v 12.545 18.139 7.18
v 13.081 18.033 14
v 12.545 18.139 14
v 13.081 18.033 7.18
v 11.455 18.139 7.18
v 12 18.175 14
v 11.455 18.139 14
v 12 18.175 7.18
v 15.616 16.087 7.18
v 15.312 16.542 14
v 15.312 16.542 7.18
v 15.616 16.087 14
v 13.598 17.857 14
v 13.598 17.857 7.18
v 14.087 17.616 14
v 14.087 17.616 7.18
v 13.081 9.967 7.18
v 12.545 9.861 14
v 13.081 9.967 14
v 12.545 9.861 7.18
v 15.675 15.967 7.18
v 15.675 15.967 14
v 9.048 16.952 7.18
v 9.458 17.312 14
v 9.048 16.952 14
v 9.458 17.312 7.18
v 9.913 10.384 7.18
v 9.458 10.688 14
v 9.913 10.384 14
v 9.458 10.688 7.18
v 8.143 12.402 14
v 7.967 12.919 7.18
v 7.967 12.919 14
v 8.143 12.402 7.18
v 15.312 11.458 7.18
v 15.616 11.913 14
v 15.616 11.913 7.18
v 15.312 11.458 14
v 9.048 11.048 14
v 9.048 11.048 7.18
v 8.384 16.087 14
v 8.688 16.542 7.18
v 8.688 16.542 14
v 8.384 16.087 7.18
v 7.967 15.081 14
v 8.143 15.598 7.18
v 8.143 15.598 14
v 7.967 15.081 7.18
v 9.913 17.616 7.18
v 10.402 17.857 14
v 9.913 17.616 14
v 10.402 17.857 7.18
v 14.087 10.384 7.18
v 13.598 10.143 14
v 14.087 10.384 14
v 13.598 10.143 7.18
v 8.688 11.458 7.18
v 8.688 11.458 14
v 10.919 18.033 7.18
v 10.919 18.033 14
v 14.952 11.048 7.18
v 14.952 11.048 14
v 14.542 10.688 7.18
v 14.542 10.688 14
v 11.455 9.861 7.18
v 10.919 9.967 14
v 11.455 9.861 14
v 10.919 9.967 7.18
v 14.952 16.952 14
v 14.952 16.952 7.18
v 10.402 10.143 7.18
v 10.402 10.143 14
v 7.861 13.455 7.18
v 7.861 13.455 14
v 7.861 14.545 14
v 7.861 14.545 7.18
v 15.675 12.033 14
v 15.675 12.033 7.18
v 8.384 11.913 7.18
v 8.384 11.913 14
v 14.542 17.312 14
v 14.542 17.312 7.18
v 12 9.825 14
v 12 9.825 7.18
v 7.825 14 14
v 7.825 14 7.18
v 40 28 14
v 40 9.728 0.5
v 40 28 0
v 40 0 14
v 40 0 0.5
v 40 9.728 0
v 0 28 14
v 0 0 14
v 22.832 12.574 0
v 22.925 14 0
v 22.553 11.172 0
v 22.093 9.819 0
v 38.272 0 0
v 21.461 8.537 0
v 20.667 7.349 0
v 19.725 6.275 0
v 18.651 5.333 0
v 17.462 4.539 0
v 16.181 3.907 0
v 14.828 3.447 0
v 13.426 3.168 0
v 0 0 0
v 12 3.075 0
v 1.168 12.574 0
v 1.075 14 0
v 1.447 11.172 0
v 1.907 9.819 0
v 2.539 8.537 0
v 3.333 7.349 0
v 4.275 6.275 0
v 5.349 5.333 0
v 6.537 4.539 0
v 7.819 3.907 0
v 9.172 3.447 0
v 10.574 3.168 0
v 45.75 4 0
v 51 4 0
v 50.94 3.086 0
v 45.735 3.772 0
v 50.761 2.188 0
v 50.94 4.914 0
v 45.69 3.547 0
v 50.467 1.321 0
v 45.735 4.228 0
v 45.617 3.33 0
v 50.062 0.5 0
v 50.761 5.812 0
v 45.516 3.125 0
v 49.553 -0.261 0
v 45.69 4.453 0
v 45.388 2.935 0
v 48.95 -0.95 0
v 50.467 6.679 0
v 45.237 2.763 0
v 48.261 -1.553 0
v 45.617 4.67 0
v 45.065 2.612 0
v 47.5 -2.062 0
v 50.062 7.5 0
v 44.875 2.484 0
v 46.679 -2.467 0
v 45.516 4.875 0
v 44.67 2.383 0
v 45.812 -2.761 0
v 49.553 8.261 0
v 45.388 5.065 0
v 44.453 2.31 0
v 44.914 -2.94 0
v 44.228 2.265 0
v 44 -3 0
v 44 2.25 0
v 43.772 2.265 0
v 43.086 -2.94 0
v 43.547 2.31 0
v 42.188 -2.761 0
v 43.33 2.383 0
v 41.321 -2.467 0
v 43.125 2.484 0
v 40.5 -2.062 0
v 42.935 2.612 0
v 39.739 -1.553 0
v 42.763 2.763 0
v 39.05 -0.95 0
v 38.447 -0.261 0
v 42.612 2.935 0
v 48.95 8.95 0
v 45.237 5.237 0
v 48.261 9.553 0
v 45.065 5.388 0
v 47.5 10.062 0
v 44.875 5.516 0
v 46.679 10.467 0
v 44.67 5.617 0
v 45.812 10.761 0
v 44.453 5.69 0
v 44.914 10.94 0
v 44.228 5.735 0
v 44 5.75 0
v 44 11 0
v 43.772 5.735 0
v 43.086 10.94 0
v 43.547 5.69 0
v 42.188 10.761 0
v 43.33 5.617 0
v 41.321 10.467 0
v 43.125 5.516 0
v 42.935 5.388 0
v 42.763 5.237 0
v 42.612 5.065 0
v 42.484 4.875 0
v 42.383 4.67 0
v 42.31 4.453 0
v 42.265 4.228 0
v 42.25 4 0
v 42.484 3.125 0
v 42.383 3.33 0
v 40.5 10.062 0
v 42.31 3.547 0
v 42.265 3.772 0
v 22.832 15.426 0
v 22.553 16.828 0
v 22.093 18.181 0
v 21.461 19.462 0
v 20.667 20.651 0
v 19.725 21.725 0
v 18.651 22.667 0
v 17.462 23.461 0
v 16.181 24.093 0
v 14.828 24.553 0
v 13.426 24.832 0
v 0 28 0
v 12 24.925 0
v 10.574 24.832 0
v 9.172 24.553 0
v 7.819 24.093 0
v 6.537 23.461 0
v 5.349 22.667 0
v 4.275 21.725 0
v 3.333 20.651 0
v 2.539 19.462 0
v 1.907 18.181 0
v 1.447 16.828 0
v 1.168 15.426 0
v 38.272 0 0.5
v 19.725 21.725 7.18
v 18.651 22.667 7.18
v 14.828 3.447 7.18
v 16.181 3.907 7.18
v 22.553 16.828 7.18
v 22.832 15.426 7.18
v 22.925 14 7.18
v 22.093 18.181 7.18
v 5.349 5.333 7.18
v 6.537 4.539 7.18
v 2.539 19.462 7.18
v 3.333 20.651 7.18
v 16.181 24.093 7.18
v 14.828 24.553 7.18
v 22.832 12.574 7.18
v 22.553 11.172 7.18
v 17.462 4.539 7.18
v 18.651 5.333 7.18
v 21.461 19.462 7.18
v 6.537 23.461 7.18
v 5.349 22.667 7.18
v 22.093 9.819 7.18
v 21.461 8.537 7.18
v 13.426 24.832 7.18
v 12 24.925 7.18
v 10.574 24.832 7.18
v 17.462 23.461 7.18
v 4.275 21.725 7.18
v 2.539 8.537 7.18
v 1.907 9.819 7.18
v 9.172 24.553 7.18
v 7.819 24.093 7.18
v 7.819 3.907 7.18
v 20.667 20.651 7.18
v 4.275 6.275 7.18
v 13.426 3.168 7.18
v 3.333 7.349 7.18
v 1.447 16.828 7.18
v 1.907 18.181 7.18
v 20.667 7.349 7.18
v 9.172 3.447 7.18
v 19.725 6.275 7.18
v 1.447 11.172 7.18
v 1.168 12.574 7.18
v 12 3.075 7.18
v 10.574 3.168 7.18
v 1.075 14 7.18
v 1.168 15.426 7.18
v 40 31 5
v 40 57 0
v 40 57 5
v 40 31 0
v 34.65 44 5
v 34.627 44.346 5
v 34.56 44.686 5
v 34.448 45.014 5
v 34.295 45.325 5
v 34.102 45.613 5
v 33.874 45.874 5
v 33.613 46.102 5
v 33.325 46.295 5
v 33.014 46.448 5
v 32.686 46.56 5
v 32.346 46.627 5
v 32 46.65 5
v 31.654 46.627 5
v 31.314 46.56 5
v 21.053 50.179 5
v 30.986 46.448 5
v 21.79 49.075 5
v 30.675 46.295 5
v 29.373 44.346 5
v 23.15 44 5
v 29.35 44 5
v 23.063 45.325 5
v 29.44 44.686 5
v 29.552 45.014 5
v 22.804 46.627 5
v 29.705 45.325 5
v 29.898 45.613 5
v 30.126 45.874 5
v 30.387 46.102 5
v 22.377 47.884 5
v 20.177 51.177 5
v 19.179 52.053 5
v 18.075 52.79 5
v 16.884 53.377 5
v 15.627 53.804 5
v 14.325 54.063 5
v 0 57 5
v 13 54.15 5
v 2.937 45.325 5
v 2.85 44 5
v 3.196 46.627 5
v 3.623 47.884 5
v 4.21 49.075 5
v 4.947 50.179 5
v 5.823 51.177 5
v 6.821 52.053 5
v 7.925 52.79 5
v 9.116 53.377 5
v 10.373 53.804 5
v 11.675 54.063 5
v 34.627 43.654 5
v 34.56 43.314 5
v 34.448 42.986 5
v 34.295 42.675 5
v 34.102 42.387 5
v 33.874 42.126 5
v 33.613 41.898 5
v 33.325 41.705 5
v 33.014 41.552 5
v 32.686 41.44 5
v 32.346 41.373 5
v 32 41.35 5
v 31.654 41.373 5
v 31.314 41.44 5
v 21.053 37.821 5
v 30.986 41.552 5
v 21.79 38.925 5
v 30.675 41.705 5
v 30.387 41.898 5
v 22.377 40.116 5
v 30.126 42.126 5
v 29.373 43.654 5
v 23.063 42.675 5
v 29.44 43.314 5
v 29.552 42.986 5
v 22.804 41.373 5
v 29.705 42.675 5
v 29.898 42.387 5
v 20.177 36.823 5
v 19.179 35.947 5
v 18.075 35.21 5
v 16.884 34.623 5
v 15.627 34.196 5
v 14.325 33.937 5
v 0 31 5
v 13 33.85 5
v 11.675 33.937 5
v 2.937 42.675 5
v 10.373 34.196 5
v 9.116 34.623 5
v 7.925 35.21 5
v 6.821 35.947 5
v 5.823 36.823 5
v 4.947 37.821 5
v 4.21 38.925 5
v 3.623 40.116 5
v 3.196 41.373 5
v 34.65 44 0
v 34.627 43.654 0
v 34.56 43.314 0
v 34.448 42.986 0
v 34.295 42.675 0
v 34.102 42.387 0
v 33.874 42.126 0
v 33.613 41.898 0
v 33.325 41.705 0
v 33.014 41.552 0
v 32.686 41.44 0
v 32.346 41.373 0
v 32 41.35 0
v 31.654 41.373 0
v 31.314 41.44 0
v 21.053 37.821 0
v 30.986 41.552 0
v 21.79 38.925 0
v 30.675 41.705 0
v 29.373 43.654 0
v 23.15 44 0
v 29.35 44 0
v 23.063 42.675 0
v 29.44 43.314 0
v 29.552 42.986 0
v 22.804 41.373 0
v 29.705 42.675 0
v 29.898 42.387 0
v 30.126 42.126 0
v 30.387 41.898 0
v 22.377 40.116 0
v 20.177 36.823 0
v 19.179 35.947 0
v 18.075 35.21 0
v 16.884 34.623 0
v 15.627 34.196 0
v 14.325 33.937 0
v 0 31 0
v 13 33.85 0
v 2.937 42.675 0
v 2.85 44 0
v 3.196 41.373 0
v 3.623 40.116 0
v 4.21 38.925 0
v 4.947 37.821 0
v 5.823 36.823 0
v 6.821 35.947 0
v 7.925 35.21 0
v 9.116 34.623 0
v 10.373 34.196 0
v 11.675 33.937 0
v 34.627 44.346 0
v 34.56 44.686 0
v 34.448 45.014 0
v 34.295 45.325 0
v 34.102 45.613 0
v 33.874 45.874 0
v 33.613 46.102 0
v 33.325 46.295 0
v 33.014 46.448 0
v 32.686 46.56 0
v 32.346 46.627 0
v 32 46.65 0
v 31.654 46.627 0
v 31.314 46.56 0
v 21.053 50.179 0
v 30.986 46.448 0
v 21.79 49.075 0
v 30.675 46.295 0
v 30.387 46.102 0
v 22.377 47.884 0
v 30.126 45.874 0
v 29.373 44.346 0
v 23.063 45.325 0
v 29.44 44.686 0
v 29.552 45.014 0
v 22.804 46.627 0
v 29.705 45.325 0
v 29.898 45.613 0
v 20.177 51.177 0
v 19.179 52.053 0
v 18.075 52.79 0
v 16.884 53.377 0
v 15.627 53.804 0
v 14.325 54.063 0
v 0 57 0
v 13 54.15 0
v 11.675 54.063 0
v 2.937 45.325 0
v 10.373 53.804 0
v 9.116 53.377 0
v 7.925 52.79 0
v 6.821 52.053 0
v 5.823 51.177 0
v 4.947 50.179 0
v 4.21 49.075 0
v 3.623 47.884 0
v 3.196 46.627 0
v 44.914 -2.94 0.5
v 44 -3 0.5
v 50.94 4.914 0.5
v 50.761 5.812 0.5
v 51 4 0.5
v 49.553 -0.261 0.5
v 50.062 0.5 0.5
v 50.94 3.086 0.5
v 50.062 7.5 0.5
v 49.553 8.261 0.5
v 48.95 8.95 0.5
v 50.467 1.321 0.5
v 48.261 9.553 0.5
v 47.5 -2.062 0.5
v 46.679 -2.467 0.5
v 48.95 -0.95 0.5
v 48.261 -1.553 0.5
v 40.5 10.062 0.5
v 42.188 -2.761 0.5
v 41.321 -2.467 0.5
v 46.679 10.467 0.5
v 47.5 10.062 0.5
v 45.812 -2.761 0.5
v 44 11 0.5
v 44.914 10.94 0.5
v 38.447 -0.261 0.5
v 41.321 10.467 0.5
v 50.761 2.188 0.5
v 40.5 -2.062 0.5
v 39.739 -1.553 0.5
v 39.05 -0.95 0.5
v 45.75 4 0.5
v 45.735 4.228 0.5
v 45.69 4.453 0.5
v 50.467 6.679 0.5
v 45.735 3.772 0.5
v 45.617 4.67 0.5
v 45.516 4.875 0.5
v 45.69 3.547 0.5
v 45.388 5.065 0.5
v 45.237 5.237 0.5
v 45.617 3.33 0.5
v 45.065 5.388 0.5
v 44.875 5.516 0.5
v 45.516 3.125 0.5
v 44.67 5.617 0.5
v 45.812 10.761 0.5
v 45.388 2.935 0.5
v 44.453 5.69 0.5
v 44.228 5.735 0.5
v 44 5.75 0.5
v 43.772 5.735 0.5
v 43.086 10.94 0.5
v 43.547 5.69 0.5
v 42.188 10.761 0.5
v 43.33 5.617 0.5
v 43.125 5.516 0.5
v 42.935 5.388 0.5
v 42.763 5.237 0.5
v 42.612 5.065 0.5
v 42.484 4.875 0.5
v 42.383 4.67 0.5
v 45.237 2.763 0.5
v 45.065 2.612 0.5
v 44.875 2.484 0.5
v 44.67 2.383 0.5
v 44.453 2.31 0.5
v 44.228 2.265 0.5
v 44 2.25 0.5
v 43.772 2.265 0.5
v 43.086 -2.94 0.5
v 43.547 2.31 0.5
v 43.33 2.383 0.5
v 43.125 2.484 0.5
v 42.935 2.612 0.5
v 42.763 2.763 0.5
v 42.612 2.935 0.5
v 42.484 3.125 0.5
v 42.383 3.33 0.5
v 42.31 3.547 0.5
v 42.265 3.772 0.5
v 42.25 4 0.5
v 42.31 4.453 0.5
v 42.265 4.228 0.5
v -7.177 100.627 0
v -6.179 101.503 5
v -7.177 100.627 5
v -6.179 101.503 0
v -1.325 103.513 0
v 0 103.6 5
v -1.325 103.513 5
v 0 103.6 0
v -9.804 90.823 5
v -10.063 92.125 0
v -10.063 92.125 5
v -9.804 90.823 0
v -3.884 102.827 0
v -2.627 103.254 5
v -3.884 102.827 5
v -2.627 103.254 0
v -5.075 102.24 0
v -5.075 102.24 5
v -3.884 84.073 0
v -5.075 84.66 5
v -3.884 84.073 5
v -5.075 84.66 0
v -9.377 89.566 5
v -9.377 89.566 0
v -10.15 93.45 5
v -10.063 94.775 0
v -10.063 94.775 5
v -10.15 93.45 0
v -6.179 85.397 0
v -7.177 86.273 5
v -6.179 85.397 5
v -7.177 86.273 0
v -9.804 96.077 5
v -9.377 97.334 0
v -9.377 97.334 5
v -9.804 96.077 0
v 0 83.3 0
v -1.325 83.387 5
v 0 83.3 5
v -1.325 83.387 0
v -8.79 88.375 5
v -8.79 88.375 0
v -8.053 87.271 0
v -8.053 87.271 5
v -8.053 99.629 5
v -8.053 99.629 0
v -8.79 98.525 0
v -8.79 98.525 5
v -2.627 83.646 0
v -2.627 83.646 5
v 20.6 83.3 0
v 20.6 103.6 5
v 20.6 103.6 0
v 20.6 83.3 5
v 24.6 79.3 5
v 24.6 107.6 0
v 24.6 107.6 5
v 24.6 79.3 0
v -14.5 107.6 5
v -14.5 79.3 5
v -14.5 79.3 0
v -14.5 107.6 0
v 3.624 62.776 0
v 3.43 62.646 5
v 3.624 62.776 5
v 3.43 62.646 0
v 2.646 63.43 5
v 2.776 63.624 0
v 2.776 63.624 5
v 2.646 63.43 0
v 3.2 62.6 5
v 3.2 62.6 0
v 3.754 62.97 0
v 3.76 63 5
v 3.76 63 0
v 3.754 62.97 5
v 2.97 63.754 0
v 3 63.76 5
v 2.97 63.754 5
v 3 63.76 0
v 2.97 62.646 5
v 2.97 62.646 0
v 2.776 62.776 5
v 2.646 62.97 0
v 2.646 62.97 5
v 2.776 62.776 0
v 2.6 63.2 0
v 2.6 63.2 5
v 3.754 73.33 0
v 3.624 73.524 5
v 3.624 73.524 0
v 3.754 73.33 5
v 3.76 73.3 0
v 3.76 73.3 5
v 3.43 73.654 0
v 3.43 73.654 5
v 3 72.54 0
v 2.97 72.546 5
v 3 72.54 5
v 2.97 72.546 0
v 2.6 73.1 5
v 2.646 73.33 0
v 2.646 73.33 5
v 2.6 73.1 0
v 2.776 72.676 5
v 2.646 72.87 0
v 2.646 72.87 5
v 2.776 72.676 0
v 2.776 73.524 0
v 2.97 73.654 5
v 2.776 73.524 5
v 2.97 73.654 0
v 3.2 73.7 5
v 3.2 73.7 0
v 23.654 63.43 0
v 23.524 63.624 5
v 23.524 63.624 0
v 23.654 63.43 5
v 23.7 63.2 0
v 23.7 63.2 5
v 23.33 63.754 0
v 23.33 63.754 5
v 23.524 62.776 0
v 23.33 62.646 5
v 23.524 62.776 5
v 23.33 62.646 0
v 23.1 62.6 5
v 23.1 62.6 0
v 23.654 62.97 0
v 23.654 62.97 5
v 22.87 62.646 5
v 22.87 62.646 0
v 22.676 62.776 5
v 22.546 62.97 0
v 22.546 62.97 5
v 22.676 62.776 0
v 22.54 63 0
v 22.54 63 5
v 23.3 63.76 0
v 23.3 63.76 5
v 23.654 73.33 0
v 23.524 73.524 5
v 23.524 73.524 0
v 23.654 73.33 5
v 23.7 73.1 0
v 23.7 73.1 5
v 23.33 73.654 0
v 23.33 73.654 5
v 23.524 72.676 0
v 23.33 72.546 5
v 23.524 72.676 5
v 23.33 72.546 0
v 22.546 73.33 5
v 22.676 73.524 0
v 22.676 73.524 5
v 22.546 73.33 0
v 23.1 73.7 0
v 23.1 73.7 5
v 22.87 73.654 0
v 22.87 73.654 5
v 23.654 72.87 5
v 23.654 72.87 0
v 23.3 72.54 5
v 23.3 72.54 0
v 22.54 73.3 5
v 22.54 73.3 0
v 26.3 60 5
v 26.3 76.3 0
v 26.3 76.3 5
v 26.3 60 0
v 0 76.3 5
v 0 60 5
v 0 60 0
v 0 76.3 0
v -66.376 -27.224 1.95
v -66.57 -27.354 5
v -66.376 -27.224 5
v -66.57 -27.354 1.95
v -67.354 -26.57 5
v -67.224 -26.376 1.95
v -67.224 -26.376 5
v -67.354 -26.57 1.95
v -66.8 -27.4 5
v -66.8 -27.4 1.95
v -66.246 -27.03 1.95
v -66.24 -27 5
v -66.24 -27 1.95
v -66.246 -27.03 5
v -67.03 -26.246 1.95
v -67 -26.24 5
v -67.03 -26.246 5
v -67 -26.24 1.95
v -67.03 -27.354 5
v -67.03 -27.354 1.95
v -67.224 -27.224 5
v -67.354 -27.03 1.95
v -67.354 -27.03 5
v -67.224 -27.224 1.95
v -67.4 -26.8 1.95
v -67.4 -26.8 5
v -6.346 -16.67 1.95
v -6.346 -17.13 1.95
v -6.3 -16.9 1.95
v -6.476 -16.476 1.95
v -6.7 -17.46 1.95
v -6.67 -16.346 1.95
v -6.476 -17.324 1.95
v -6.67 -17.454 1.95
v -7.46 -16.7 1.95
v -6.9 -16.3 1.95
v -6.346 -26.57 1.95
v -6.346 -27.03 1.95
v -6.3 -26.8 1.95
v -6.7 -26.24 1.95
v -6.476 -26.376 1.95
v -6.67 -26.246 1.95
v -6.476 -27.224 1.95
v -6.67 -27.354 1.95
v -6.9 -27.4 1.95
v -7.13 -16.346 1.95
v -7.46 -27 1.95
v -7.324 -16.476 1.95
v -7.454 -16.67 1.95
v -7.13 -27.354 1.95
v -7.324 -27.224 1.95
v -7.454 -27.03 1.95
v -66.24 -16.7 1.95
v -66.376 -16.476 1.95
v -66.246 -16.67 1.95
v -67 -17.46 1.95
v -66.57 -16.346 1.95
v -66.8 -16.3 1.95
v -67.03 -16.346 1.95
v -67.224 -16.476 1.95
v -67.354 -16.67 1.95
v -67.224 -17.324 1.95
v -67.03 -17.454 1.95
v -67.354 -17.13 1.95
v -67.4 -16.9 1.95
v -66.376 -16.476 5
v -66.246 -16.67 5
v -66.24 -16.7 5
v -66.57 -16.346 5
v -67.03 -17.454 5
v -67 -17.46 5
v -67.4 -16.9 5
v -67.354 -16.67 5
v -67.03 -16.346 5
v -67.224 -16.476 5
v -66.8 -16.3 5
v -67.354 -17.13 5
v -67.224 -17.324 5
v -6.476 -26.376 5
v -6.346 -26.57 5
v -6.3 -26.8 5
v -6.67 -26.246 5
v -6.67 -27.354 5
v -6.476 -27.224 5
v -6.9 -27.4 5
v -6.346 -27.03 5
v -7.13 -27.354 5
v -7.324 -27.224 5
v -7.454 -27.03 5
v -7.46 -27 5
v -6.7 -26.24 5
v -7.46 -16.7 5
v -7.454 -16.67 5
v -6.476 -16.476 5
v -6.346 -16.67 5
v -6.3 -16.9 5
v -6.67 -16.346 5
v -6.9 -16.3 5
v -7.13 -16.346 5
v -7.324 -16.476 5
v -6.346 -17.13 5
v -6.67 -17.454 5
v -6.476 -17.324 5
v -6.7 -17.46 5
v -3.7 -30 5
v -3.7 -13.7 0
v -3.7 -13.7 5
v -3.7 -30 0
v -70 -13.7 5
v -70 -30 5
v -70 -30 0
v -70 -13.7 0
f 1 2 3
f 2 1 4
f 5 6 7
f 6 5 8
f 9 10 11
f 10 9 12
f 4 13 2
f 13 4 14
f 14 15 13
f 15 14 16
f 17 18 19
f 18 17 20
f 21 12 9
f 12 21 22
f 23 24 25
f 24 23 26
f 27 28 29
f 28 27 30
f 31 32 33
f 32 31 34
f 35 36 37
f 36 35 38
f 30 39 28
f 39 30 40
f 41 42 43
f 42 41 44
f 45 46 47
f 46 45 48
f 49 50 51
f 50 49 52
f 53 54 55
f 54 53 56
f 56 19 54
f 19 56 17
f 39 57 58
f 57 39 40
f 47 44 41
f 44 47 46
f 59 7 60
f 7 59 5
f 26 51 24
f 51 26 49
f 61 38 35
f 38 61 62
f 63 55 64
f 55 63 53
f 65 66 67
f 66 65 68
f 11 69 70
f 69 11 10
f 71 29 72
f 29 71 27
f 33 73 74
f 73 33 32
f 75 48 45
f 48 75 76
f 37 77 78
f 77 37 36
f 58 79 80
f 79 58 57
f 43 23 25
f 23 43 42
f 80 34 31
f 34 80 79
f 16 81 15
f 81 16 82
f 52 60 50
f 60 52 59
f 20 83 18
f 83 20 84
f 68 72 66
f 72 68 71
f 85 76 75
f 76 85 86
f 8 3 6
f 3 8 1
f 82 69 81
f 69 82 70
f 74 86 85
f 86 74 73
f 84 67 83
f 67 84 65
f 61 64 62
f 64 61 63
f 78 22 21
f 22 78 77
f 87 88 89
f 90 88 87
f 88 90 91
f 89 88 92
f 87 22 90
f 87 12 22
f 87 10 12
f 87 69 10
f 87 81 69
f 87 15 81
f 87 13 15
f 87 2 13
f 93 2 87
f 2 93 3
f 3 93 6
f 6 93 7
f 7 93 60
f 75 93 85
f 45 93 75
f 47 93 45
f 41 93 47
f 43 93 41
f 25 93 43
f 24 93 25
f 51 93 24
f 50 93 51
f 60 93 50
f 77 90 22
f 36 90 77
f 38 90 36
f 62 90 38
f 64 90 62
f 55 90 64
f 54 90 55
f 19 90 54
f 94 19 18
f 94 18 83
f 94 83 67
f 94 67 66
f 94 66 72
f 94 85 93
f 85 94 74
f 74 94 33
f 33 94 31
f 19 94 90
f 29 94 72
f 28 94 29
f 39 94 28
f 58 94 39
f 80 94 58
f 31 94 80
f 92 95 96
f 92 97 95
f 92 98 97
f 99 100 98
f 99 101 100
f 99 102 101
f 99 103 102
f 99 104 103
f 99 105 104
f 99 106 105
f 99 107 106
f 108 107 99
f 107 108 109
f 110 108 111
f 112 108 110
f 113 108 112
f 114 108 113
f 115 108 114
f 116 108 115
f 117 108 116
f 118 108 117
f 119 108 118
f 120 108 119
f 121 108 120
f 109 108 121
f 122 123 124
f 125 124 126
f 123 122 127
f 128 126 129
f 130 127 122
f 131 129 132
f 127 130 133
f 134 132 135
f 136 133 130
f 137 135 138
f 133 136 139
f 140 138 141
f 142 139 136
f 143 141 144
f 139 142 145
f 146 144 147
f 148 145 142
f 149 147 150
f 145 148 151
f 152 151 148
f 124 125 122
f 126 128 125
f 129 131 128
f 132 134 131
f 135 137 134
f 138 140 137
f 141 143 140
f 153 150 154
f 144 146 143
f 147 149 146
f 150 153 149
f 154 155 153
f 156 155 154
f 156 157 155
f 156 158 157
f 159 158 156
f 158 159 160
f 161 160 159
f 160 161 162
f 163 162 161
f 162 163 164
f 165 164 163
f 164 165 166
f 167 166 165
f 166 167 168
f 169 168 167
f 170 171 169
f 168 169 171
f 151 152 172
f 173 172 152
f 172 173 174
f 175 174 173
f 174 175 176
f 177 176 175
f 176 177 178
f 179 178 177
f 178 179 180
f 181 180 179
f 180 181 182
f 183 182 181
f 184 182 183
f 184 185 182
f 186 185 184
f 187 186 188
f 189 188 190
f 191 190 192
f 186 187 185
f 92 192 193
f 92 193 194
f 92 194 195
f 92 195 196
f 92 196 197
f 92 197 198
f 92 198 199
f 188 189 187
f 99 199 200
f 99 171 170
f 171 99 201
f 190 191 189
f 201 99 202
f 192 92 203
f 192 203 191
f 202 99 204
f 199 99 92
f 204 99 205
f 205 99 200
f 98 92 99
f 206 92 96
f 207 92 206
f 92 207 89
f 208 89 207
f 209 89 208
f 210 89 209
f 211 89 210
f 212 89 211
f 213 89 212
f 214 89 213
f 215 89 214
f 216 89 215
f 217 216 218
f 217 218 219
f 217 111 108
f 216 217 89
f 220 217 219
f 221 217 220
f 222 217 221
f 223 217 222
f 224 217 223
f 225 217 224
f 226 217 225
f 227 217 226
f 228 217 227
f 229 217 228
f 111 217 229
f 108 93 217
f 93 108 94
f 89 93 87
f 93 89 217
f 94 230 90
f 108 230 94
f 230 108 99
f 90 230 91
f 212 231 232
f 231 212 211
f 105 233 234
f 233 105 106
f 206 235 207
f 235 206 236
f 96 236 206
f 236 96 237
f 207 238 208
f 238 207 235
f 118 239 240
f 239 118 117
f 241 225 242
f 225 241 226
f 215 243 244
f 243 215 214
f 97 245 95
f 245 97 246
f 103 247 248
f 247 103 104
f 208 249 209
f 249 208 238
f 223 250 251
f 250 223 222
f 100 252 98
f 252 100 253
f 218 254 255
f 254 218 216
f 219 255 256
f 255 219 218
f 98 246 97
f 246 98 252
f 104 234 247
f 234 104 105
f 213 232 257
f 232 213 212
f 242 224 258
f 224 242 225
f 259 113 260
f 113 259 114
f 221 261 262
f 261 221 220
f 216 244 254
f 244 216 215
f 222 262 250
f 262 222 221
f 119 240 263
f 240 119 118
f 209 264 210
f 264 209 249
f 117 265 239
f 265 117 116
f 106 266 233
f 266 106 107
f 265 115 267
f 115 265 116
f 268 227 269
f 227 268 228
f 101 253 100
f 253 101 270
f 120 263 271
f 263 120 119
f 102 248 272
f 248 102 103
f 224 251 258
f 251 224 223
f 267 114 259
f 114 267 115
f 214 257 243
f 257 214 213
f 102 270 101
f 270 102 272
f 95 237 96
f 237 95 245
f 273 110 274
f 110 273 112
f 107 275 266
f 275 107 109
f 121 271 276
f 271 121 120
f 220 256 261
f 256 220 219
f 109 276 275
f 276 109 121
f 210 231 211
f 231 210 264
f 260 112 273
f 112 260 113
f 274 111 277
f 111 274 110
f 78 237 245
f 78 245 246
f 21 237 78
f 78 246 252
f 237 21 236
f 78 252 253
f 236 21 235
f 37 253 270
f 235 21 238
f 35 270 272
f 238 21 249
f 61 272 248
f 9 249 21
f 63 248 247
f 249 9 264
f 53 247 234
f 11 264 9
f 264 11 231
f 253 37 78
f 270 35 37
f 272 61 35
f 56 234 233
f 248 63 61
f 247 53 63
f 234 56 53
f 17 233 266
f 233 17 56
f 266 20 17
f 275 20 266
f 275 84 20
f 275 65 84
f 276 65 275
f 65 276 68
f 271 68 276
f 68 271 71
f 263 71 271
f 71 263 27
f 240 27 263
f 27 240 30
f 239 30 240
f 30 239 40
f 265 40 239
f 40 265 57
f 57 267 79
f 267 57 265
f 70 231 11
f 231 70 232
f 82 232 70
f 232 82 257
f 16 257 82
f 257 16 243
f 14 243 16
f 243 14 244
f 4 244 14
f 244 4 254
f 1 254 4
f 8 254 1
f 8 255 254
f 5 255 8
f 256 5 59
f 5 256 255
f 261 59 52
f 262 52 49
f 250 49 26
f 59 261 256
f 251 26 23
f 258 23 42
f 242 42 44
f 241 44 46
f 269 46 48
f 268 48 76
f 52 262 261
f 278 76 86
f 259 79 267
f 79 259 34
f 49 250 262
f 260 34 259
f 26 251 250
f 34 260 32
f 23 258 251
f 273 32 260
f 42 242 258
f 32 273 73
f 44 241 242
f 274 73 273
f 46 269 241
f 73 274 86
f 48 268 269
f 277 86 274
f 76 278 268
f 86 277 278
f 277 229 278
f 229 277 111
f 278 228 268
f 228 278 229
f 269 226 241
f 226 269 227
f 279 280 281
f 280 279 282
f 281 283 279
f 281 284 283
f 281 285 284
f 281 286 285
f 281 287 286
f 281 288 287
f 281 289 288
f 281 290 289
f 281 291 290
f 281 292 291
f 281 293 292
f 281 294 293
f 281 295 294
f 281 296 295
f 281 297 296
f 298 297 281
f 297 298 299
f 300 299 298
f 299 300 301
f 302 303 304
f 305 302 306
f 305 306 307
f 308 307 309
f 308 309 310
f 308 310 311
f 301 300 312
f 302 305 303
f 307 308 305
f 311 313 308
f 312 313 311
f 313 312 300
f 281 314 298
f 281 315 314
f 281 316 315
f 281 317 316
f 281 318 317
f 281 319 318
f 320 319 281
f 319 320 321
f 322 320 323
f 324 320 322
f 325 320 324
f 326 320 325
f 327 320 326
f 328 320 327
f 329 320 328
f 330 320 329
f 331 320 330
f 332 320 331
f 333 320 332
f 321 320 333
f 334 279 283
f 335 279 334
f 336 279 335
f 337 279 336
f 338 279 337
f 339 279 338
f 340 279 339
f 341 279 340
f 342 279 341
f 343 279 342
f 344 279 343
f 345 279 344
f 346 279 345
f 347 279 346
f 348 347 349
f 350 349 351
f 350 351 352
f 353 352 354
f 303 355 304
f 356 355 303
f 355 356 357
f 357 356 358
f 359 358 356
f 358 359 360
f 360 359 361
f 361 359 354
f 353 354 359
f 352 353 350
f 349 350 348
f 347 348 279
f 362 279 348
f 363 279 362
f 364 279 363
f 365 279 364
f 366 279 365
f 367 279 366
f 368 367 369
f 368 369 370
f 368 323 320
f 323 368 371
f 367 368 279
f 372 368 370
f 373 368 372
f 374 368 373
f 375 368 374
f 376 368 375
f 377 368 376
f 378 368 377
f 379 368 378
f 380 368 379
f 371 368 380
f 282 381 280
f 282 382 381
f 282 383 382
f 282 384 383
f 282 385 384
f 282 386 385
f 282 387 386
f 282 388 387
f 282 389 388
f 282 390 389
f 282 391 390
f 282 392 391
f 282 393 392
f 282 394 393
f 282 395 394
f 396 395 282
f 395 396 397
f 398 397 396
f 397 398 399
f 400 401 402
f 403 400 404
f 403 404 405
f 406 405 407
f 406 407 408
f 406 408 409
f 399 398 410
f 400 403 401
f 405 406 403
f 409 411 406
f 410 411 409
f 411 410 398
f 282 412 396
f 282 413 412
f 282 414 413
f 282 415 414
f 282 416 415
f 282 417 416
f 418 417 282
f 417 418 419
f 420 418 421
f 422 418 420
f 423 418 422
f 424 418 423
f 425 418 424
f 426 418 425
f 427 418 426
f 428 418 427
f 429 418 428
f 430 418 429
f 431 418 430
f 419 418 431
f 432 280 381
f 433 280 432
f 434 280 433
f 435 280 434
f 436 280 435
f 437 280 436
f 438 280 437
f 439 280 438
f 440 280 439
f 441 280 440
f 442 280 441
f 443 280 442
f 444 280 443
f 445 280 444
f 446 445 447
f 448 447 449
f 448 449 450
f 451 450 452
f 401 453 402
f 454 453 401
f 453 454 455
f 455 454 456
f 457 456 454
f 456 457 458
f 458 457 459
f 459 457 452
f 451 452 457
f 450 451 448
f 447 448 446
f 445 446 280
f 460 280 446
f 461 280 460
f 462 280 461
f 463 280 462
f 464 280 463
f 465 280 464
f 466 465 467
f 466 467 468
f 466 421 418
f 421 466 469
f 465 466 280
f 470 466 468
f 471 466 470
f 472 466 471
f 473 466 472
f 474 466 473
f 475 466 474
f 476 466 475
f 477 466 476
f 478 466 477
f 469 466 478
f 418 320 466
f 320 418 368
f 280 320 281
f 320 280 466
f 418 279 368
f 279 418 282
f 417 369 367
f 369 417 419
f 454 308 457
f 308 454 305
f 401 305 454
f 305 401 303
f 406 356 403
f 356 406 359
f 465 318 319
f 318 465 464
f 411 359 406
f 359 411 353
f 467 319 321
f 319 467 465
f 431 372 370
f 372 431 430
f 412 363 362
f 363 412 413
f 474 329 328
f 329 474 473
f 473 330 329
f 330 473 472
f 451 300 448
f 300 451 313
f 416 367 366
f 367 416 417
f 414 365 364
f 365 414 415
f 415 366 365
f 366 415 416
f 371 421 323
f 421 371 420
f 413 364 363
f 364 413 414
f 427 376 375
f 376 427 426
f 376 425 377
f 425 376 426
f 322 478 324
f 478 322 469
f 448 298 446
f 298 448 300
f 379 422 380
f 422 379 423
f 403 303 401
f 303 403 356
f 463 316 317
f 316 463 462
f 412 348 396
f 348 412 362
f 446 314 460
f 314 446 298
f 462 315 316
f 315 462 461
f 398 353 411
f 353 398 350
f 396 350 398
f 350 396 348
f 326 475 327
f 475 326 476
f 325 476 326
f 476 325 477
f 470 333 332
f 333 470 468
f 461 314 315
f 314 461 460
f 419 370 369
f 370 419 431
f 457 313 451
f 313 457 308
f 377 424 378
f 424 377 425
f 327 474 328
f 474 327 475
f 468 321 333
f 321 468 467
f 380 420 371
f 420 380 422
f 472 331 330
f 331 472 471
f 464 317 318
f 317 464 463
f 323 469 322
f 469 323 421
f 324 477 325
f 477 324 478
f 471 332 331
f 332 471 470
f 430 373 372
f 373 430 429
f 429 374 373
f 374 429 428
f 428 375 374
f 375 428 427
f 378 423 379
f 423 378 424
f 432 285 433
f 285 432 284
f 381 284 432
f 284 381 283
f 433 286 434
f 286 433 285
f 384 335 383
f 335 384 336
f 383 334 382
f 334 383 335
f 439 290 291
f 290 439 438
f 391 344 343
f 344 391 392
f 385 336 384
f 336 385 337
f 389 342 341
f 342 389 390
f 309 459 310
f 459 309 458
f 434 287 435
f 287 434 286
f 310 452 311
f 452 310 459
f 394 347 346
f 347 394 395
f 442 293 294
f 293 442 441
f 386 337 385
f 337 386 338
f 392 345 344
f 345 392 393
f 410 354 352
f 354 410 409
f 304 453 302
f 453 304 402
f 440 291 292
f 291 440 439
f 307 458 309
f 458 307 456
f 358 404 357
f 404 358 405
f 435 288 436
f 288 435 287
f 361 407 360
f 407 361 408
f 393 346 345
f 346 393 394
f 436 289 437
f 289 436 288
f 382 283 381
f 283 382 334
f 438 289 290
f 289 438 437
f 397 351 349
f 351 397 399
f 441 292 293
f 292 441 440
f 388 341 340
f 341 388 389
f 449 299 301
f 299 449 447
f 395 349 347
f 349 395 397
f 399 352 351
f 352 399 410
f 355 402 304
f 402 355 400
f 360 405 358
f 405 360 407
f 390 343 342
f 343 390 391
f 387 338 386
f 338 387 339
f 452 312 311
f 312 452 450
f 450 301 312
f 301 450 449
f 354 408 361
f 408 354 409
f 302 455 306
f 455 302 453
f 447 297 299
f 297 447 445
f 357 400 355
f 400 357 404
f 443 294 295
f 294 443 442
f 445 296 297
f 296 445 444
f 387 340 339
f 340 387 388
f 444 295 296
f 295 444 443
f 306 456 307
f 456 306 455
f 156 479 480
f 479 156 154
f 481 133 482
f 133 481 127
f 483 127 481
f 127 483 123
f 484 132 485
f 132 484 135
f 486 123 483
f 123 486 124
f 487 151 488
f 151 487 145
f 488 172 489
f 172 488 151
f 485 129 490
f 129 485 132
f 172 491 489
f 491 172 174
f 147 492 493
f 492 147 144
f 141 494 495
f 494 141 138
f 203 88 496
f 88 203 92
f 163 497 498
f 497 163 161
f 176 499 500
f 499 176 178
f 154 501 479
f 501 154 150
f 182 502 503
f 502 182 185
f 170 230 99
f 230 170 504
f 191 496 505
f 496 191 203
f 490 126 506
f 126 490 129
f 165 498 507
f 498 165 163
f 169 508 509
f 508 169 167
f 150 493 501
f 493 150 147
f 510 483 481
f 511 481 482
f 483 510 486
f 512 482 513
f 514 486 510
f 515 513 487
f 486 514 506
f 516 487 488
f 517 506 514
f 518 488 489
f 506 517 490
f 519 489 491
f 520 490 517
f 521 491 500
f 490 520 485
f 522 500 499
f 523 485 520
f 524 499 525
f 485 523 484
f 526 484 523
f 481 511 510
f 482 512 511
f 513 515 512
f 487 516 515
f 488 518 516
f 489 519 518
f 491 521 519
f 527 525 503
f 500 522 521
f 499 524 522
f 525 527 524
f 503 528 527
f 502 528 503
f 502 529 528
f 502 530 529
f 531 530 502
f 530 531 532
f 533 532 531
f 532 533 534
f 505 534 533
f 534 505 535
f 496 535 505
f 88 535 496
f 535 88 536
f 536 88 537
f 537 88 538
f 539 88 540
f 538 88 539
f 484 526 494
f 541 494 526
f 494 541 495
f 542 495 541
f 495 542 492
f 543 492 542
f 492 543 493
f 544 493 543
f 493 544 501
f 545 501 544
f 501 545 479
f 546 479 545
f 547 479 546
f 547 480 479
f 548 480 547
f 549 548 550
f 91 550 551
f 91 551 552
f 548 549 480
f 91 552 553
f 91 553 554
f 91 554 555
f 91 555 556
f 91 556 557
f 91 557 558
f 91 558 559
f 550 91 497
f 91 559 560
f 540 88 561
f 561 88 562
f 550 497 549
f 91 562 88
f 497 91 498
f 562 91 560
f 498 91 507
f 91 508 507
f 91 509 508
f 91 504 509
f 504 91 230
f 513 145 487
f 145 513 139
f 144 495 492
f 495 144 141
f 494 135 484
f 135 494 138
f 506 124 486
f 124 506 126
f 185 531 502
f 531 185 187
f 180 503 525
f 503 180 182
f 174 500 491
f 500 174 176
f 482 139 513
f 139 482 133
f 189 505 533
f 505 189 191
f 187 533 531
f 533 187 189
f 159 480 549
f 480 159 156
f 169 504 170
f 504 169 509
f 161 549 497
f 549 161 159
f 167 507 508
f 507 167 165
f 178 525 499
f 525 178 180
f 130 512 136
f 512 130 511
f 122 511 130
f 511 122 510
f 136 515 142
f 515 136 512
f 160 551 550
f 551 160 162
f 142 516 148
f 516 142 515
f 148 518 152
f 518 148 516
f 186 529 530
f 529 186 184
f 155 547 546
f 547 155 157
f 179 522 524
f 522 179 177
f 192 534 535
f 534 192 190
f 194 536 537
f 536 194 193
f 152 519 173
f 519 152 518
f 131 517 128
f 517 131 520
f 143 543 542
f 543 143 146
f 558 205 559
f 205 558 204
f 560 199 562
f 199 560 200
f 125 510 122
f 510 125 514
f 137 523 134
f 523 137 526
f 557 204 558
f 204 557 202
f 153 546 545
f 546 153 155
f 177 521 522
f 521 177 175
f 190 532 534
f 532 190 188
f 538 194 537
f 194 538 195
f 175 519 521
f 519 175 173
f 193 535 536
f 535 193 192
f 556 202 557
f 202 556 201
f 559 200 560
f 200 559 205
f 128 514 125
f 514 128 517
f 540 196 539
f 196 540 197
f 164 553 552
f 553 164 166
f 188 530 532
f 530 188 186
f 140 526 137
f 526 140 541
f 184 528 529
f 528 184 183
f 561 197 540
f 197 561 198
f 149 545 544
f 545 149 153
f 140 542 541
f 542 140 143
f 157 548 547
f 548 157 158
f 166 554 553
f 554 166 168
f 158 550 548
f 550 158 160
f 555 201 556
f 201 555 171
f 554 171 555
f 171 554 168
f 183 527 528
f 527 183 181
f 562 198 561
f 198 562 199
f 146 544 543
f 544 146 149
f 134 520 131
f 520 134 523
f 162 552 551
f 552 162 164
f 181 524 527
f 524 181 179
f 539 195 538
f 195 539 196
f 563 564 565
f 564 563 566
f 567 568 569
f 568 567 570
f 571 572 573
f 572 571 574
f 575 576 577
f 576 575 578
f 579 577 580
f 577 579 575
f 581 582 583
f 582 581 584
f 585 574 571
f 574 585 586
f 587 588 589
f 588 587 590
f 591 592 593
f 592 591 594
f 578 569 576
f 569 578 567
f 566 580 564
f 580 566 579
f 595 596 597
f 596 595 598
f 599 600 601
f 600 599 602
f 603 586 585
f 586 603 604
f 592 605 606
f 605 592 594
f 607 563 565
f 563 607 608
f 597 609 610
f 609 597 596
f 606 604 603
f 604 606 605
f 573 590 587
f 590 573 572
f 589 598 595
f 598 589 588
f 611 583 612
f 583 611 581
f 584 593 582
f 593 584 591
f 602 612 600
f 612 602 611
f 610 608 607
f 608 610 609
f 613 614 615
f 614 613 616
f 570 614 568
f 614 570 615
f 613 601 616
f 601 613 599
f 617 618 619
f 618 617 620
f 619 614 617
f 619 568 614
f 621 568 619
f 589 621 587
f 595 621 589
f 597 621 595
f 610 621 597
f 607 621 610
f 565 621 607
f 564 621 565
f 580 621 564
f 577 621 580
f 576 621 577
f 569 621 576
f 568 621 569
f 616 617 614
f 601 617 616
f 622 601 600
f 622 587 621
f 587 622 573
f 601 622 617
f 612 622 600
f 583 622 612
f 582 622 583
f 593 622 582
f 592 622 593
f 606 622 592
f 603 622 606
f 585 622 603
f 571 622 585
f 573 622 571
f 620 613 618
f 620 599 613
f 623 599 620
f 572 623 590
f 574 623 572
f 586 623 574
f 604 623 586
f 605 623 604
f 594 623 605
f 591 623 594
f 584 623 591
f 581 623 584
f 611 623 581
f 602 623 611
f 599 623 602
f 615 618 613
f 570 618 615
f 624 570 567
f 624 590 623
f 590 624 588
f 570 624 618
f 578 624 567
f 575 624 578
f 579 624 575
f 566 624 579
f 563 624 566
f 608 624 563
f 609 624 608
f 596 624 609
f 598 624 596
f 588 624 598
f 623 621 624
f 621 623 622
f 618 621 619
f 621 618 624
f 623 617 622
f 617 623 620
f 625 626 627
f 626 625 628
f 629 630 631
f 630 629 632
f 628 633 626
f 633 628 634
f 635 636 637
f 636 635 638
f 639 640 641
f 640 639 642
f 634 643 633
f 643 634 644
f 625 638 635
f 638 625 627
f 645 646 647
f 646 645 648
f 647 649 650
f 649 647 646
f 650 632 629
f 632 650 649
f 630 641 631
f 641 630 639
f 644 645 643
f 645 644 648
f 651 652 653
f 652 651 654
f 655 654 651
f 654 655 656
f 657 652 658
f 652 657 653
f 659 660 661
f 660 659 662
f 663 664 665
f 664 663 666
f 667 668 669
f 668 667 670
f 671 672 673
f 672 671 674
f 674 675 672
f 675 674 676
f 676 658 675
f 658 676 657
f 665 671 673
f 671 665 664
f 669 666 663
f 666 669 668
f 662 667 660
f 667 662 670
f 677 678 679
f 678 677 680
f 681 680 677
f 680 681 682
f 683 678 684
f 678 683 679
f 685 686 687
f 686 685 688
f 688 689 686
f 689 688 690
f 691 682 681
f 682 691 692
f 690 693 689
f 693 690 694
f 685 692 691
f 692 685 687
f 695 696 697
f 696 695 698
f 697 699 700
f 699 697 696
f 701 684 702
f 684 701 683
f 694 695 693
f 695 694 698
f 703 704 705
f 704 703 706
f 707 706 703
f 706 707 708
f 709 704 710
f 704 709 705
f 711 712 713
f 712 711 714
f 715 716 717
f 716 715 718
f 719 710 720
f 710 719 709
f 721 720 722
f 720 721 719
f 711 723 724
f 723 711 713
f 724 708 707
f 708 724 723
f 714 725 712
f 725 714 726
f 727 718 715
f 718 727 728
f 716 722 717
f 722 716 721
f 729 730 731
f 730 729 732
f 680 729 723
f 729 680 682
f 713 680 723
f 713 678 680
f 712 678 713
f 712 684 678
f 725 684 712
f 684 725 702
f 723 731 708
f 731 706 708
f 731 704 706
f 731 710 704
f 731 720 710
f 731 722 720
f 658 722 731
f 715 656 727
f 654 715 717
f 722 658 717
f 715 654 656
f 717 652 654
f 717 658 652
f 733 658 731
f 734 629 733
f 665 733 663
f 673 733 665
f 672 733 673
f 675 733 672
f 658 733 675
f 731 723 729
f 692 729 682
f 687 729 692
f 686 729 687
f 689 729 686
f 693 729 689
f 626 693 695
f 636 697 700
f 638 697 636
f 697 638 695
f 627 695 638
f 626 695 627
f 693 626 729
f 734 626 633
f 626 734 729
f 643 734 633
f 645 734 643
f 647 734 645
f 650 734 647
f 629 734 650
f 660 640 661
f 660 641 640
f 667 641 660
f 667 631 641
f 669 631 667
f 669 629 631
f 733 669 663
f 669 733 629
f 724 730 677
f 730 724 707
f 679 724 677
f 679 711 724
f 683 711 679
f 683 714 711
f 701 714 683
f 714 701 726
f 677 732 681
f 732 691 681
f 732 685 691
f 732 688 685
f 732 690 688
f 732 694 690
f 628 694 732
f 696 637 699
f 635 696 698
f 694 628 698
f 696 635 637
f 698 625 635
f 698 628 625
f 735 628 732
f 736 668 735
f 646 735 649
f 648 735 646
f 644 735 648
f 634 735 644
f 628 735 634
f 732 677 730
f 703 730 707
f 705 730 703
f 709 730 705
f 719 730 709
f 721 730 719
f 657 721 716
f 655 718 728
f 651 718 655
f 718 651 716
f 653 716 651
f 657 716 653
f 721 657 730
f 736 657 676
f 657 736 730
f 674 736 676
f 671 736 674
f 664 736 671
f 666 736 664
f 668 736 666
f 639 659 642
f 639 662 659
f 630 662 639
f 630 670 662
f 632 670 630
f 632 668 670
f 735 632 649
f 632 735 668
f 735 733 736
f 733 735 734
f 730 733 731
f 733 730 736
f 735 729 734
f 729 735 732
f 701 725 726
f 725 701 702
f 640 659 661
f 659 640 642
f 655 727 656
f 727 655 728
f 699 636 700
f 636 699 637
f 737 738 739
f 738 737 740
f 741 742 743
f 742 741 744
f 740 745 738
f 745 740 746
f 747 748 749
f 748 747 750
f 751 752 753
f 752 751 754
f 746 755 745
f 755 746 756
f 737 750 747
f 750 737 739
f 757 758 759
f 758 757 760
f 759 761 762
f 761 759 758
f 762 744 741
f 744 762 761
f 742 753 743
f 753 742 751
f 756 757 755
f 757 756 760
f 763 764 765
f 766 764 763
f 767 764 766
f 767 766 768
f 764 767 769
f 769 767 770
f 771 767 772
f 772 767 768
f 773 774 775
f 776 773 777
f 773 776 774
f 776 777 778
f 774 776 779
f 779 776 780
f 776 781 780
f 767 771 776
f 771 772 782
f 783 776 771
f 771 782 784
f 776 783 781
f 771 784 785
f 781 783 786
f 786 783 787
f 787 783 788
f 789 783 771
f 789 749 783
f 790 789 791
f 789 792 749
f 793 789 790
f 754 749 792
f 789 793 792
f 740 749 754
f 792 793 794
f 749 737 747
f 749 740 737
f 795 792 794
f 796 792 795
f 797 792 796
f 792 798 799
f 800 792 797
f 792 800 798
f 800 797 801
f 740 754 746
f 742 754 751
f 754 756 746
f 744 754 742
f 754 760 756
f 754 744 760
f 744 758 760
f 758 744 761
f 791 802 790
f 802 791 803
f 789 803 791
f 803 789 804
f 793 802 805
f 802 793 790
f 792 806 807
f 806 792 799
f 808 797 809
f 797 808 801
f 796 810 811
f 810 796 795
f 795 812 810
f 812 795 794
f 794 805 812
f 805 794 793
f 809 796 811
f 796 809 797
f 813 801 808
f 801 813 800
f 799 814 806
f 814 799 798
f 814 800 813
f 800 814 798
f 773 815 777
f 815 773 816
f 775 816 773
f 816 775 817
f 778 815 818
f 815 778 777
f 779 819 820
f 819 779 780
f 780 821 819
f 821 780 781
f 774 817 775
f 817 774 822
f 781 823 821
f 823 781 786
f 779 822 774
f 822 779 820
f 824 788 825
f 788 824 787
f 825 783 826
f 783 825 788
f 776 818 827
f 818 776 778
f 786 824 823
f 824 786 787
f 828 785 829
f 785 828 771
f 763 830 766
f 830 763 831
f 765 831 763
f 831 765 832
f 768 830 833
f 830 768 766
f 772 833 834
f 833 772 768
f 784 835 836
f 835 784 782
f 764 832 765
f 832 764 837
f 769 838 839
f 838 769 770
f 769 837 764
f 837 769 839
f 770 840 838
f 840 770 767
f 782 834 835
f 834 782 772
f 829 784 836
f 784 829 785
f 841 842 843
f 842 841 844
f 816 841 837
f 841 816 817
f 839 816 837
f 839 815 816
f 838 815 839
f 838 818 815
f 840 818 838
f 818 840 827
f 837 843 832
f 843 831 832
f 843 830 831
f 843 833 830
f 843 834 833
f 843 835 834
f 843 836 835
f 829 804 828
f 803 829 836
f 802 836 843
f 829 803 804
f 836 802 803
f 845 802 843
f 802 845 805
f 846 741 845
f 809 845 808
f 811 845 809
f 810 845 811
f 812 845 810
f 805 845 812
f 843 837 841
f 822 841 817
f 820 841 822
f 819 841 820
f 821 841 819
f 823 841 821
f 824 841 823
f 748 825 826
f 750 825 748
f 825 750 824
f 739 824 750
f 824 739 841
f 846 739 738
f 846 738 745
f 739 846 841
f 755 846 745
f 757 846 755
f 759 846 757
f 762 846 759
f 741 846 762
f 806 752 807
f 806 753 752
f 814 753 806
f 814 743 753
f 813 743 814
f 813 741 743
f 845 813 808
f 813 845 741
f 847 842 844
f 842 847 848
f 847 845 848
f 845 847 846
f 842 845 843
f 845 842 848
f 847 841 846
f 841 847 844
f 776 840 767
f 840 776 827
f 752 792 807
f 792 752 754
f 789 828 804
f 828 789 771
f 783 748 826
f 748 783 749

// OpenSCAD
// Gen-DI — fit coupon: O20/O5 THROUGH pockets at carrier thickness (test on a steel offcut), 608 seat,
// D-flat bore, gap shim, and one bobbin-bay slice (bobbin footprint + bay_clear) to test former fit.
include <parameters.scad>;
$fn = 48;
// D-flat keyed bore: flat faces +X (angle 0 = magnet pocket 0 = index notch)
module dflat_bore(h) {
    intersection() {
        cylinder(d=shaft_bore, h=h);
        translate([-shaft_bore, -shaft_bore, 0]) cube([shaft_bore + dflat_x, 2*shaft_bore, h]);
    }
}
module sector_2d(r_in, r_out, ang) {
    polygon([
        for (a = [-ang/2 : ang/24 : ang/2]) [r_in*cos(a), r_in*sin(a)],
        for (a = [ang/2 : -ang/24 : -ang/2]) [r_out*cos(a), r_out*sin(a)]
    ]);
}
module footprint_2d() { offset(r=wall) sector_2d(coil_id_r, coil_od_r, span_deg); }
module hub_2d()       { offset(delta=-coil_core_inset) sector_2d(coil_id_r, coil_od_r, span_deg); }

block_w = 40; block_d = 28; block_h = 14;
difference() {
    cube([block_w, block_d, block_h]);
    translate([12, block_d/2, -0.02]) cylinder(d=bearing_d, h=bearing_h);
    translate([12, block_d/2, -0.1]) dflat_bore(block_h + 1);
}
translate([0, block_d + 3, 0]) difference() {
    cube([40, 26, carrier_thick]);
    translate([13, 13, -0.1]) cylinder(d=large_pocket_d, h=carrier_thick + 0.2);
    translate([32, 13, -0.1]) cylinder(d=small_pocket_d, h=carrier_thick + 0.2);
}
translate([block_w + 4, 4, 0])
    difference() {
        cylinder(d=spacer_pad_od, h=gap_spacer_h);
        translate([0, 0, -0.1]) cylinder(d=spacer_pad_id, h=gap_spacer_h + 0.2);
    }
// KEYHOLE pole pocket test (2026-10-18): O20 disc pocket + N42 20x10x5 block pocket merged (hull), as on the arcs.
// Drop a disc and a block in: they must push each other onto the two far walls and sit flat. Block pocket has corner reliefs.
translate([0, block_d + 3 + 26 + 3 + block_radial + block_pocket_clear + 6 + 3 + max(block_tangential, large_pocket_d) / 2 + 4, 0]) difference() {
    translate([-14.5, -(max(block_tangential, large_pocket_d) / 2 + 4), 0]) cube([14.5 + abs(block_R_list[0] - R_large) + block_radial / 2 + 4, max(block_tangential, large_pocket_d) + 8, carrier_thick]);
    translate([0, 0, -0.1]) {
        translate([disc_pocket_shift * sign(block_R_list[0] - R_large), 0, 0]) cylinder(d=large_pocket_d, h=carrier_thick + 0.2);
        translate([disc_pocket_shift * sign(block_R_list[0] - R_large), -(block_tangential + block_pocket_clear)/2, 0])
            cube([abs(block_R_list[0] - R_large) - abs(block_pocket_shift) + (block_radial + block_pocket_clear)/2 - disc_pocket_shift * sign(block_R_list[0] - R_large), block_tangential + block_pocket_clear, carrier_thick + 0.2]);
    }
}
// N42 20x10x5 BLOCK through-pocket test (block + block_pocket_clear, 1.2 mm corner reliefs), 2026-10-16
translate([0, block_d + 3 + 26 + 3, 0]) difference() {
    cube([block_tangential + block_pocket_clear + 6, block_radial + block_pocket_clear + 6, carrier_thick]);
    translate([3, 3, -0.1]) cube([block_tangential + block_pocket_clear, block_radial + block_pocket_clear, carrier_thick + 0.2]);
    for (x = [3.2, 3 + block_tangential + block_pocket_clear - 0.2], y = [3.2, 3 + block_radial + block_pocket_clear - 0.2])
        translate([x, y, -0.1]) cylinder(d=1.2, h=carrier_thick + 0.2, $fn=16);
}
// N52 60x10x3 BAR blind-pocket test (2026-10-21): bar + 0.3 mm, depth block2_pocket_depth: the bar face must sit flush with the top.
translate([-70, -30, 0]) difference() {
    cube([block2_tangential + block2_pocket_clear + 6, block2_radial + block2_pocket_clear + 6, carrier_thick]);
    translate([3, 3, carrier_thick - block2_pocket_depth]) cube([block2_tangential + block2_pocket_clear, block2_radial + block2_pocket_clear, carrier_thick]);
    for (x = [3.2, 3 + block2_tangential + block2_pocket_clear - 0.2], y = [3.2, 3 + block2_radial + block2_pocket_clear - 0.2])
        translate([x, y, carrier_thick - block2_pocket_depth]) cylinder(d=1.2, h=carrier_thick, $fn=16);
}
